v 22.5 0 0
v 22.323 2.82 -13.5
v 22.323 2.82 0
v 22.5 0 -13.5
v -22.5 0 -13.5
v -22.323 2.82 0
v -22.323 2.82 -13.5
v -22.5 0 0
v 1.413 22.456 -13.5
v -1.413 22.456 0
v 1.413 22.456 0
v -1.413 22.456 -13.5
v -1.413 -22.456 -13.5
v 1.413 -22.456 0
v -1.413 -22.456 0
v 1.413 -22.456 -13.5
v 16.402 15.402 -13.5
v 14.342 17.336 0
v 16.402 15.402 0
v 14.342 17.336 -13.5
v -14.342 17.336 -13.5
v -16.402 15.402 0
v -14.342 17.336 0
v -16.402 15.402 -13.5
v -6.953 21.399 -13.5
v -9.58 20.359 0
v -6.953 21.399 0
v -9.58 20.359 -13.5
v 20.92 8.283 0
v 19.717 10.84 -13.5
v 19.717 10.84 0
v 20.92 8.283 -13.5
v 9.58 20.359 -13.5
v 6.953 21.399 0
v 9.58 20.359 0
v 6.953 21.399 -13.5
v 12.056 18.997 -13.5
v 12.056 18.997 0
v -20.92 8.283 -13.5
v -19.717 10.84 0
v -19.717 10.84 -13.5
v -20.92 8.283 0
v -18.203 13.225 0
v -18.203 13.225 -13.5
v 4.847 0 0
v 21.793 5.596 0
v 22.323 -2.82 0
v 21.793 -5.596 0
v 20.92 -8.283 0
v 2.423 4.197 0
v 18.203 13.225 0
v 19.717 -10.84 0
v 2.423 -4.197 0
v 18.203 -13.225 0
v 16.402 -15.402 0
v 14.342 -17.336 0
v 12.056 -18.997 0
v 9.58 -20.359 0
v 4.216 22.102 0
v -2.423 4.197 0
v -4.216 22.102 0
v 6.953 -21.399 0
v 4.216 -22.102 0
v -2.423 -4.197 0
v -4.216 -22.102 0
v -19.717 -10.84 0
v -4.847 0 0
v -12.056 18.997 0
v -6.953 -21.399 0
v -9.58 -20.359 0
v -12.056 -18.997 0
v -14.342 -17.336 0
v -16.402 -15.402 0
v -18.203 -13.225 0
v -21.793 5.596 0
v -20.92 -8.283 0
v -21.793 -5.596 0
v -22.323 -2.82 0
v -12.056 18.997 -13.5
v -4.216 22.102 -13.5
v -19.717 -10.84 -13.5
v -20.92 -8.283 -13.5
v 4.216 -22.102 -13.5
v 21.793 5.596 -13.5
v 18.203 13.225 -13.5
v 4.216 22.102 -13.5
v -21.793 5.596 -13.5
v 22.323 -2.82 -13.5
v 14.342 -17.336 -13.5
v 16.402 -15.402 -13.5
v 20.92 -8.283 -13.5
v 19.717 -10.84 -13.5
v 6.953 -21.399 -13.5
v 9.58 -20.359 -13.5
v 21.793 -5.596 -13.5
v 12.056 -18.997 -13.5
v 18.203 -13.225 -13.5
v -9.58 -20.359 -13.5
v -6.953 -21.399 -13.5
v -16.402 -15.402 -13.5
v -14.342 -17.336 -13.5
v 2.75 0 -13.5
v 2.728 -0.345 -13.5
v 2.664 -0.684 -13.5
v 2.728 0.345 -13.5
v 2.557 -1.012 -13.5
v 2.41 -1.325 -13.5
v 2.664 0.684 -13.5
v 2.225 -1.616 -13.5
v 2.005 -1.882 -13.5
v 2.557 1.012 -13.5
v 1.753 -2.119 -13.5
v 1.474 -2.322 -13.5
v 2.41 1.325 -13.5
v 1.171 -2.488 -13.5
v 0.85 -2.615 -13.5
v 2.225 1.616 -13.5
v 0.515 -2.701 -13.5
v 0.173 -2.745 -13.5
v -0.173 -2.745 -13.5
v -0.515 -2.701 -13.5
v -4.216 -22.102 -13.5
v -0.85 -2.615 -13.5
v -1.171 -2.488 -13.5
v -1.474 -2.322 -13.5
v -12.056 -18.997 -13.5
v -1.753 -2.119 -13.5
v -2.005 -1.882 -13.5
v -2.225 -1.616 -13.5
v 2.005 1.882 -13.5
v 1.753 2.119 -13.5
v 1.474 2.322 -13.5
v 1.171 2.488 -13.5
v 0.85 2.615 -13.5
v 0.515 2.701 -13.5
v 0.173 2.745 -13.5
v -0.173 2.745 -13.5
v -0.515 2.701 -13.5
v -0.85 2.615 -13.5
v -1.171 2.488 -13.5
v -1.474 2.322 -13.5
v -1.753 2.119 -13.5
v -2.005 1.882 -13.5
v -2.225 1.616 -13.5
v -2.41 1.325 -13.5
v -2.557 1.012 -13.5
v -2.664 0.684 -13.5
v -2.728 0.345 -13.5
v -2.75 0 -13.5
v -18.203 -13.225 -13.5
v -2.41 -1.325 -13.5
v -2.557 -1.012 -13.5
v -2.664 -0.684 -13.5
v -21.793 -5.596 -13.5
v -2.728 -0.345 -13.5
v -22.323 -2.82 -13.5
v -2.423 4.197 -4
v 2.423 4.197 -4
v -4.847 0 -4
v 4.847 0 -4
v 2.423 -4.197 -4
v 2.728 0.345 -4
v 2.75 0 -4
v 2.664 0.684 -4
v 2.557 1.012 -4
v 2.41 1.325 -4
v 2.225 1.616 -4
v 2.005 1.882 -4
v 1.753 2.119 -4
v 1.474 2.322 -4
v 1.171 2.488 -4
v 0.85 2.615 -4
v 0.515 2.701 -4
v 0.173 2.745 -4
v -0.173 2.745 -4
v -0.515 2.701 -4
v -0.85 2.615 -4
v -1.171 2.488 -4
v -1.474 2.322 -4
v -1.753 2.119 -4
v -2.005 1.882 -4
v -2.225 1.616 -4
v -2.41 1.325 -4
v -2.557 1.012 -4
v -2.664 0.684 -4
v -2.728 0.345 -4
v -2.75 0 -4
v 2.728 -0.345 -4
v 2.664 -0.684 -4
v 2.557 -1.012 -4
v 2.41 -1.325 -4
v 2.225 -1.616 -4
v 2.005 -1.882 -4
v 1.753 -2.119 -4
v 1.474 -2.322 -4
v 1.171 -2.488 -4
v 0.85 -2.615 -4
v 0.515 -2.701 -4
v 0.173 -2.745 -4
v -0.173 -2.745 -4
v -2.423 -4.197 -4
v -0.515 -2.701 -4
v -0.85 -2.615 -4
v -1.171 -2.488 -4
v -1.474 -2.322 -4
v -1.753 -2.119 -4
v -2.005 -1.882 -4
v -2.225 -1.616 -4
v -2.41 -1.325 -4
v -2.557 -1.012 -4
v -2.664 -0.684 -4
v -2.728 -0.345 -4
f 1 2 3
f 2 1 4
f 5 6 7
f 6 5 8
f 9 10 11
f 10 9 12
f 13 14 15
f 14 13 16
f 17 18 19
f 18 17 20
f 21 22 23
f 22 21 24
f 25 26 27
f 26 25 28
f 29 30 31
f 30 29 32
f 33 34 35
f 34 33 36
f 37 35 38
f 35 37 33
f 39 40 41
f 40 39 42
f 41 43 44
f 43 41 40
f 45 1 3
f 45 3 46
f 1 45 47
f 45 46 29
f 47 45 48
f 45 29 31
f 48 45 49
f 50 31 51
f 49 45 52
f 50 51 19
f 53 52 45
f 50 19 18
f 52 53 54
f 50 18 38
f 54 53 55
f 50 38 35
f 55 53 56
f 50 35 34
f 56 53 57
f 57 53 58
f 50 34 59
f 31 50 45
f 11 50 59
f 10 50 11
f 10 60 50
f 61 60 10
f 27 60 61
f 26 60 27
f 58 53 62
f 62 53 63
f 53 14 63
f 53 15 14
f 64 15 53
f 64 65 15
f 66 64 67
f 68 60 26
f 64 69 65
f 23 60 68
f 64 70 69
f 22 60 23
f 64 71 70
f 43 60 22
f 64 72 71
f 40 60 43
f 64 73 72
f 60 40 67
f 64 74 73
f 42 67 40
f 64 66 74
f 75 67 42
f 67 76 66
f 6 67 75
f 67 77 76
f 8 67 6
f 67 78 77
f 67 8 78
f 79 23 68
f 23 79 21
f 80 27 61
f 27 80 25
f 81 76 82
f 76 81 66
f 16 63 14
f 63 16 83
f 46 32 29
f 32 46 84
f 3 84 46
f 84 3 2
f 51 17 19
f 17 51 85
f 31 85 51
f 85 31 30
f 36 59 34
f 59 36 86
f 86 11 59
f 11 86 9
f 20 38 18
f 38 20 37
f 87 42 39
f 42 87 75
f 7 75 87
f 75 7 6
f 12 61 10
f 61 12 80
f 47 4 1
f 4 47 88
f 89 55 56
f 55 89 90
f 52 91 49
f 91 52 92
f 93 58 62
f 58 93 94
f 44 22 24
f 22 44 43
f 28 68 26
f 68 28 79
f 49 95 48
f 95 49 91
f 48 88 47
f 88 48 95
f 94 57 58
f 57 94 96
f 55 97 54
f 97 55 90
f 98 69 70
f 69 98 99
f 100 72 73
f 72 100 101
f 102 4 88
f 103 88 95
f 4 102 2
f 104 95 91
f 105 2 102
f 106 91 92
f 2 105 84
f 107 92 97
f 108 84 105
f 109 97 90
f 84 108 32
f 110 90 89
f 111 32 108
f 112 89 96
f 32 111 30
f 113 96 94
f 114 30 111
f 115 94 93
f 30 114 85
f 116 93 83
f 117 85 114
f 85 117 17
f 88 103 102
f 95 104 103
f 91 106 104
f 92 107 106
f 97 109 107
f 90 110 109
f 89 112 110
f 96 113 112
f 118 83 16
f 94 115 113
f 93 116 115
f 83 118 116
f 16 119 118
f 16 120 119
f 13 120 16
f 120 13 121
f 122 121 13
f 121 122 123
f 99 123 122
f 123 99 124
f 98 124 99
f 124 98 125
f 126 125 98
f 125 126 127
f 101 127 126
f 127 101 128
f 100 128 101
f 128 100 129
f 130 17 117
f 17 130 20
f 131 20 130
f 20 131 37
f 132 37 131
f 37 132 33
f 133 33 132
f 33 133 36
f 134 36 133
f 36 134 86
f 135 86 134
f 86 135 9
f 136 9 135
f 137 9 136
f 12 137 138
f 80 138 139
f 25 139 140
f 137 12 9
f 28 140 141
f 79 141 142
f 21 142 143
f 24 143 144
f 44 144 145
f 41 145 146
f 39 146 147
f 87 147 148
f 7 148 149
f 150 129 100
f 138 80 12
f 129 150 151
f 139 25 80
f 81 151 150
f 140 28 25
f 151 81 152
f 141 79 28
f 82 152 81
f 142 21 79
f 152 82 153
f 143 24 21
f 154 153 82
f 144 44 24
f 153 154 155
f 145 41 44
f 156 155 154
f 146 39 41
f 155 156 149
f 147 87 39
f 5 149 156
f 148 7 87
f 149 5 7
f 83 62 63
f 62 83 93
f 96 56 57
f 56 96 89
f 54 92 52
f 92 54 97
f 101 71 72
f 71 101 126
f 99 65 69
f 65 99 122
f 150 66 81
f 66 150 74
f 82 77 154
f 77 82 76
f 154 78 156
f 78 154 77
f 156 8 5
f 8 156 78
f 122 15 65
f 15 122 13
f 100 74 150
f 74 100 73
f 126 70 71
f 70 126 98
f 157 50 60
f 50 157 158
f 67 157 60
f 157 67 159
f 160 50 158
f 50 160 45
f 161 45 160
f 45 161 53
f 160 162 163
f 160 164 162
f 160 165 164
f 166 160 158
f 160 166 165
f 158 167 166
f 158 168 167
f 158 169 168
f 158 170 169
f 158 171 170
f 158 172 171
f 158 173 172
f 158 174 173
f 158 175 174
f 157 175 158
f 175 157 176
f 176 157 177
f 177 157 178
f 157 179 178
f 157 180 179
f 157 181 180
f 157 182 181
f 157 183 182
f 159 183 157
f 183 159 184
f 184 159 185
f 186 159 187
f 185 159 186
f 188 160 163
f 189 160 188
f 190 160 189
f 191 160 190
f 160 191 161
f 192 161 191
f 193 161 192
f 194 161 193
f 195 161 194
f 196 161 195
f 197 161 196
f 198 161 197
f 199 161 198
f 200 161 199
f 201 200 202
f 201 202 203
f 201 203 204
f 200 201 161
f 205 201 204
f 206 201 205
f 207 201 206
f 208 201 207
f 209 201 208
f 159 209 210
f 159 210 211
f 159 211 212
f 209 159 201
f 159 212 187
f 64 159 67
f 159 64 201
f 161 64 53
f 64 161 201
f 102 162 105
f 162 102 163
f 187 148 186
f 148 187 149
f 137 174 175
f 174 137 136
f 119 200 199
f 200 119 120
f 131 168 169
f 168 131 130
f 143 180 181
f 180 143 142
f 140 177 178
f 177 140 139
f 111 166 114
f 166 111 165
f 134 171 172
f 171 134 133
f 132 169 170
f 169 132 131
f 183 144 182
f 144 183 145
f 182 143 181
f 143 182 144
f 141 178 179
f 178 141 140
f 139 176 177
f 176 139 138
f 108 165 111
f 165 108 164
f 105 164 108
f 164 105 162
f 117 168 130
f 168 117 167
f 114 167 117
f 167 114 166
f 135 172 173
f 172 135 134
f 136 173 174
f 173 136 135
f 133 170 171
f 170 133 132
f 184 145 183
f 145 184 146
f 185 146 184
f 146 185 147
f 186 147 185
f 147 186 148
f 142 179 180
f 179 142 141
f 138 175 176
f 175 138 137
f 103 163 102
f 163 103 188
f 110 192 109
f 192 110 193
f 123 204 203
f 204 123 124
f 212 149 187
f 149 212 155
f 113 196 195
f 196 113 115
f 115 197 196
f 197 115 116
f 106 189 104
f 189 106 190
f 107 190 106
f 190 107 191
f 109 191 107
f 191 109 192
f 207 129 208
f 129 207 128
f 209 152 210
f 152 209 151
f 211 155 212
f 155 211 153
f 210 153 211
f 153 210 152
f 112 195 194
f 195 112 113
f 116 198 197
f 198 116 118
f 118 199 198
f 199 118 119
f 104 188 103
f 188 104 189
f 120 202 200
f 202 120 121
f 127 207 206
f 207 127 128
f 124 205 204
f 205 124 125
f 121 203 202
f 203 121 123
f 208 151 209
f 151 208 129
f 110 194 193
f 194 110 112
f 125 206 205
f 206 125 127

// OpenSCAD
$fn = 50;


difference() {
	union() {
		translate(v = [0, 0, -13.5000000000]) {
			cylinder(h = 13.5000000000, r = 22.5000000000);
		}
		translate(v = [0, 0, -12.0000000000]) {
			cylinder(h = 12, r = 2.8750000000);
		}
	}
	union() {
		translate(v = [0, 0, 0]) {
			rotate(a = [0, 0, 0]) {
				difference() {
					union() {
						translate(v = [0, 0, -4]) {
							linear_extrude(height = 4) {
								polygon(points = [[4.8468000000, 0.0000000000], [2.4234000000, 4.1974519271], [-2.4234000000, 4.1974519271], [-4.8468000000, 0.0000000000], [-2.4234000000, -4.1974519271], [2.4234000000, -4.1974519271]]);
							}
						}
					}
					union();
				}
			}
		}
		#translate(v = [0, 0, -100.0000000000]) {
			cylinder(h = 200, r = 2.7500000000);
		}
	}
}
